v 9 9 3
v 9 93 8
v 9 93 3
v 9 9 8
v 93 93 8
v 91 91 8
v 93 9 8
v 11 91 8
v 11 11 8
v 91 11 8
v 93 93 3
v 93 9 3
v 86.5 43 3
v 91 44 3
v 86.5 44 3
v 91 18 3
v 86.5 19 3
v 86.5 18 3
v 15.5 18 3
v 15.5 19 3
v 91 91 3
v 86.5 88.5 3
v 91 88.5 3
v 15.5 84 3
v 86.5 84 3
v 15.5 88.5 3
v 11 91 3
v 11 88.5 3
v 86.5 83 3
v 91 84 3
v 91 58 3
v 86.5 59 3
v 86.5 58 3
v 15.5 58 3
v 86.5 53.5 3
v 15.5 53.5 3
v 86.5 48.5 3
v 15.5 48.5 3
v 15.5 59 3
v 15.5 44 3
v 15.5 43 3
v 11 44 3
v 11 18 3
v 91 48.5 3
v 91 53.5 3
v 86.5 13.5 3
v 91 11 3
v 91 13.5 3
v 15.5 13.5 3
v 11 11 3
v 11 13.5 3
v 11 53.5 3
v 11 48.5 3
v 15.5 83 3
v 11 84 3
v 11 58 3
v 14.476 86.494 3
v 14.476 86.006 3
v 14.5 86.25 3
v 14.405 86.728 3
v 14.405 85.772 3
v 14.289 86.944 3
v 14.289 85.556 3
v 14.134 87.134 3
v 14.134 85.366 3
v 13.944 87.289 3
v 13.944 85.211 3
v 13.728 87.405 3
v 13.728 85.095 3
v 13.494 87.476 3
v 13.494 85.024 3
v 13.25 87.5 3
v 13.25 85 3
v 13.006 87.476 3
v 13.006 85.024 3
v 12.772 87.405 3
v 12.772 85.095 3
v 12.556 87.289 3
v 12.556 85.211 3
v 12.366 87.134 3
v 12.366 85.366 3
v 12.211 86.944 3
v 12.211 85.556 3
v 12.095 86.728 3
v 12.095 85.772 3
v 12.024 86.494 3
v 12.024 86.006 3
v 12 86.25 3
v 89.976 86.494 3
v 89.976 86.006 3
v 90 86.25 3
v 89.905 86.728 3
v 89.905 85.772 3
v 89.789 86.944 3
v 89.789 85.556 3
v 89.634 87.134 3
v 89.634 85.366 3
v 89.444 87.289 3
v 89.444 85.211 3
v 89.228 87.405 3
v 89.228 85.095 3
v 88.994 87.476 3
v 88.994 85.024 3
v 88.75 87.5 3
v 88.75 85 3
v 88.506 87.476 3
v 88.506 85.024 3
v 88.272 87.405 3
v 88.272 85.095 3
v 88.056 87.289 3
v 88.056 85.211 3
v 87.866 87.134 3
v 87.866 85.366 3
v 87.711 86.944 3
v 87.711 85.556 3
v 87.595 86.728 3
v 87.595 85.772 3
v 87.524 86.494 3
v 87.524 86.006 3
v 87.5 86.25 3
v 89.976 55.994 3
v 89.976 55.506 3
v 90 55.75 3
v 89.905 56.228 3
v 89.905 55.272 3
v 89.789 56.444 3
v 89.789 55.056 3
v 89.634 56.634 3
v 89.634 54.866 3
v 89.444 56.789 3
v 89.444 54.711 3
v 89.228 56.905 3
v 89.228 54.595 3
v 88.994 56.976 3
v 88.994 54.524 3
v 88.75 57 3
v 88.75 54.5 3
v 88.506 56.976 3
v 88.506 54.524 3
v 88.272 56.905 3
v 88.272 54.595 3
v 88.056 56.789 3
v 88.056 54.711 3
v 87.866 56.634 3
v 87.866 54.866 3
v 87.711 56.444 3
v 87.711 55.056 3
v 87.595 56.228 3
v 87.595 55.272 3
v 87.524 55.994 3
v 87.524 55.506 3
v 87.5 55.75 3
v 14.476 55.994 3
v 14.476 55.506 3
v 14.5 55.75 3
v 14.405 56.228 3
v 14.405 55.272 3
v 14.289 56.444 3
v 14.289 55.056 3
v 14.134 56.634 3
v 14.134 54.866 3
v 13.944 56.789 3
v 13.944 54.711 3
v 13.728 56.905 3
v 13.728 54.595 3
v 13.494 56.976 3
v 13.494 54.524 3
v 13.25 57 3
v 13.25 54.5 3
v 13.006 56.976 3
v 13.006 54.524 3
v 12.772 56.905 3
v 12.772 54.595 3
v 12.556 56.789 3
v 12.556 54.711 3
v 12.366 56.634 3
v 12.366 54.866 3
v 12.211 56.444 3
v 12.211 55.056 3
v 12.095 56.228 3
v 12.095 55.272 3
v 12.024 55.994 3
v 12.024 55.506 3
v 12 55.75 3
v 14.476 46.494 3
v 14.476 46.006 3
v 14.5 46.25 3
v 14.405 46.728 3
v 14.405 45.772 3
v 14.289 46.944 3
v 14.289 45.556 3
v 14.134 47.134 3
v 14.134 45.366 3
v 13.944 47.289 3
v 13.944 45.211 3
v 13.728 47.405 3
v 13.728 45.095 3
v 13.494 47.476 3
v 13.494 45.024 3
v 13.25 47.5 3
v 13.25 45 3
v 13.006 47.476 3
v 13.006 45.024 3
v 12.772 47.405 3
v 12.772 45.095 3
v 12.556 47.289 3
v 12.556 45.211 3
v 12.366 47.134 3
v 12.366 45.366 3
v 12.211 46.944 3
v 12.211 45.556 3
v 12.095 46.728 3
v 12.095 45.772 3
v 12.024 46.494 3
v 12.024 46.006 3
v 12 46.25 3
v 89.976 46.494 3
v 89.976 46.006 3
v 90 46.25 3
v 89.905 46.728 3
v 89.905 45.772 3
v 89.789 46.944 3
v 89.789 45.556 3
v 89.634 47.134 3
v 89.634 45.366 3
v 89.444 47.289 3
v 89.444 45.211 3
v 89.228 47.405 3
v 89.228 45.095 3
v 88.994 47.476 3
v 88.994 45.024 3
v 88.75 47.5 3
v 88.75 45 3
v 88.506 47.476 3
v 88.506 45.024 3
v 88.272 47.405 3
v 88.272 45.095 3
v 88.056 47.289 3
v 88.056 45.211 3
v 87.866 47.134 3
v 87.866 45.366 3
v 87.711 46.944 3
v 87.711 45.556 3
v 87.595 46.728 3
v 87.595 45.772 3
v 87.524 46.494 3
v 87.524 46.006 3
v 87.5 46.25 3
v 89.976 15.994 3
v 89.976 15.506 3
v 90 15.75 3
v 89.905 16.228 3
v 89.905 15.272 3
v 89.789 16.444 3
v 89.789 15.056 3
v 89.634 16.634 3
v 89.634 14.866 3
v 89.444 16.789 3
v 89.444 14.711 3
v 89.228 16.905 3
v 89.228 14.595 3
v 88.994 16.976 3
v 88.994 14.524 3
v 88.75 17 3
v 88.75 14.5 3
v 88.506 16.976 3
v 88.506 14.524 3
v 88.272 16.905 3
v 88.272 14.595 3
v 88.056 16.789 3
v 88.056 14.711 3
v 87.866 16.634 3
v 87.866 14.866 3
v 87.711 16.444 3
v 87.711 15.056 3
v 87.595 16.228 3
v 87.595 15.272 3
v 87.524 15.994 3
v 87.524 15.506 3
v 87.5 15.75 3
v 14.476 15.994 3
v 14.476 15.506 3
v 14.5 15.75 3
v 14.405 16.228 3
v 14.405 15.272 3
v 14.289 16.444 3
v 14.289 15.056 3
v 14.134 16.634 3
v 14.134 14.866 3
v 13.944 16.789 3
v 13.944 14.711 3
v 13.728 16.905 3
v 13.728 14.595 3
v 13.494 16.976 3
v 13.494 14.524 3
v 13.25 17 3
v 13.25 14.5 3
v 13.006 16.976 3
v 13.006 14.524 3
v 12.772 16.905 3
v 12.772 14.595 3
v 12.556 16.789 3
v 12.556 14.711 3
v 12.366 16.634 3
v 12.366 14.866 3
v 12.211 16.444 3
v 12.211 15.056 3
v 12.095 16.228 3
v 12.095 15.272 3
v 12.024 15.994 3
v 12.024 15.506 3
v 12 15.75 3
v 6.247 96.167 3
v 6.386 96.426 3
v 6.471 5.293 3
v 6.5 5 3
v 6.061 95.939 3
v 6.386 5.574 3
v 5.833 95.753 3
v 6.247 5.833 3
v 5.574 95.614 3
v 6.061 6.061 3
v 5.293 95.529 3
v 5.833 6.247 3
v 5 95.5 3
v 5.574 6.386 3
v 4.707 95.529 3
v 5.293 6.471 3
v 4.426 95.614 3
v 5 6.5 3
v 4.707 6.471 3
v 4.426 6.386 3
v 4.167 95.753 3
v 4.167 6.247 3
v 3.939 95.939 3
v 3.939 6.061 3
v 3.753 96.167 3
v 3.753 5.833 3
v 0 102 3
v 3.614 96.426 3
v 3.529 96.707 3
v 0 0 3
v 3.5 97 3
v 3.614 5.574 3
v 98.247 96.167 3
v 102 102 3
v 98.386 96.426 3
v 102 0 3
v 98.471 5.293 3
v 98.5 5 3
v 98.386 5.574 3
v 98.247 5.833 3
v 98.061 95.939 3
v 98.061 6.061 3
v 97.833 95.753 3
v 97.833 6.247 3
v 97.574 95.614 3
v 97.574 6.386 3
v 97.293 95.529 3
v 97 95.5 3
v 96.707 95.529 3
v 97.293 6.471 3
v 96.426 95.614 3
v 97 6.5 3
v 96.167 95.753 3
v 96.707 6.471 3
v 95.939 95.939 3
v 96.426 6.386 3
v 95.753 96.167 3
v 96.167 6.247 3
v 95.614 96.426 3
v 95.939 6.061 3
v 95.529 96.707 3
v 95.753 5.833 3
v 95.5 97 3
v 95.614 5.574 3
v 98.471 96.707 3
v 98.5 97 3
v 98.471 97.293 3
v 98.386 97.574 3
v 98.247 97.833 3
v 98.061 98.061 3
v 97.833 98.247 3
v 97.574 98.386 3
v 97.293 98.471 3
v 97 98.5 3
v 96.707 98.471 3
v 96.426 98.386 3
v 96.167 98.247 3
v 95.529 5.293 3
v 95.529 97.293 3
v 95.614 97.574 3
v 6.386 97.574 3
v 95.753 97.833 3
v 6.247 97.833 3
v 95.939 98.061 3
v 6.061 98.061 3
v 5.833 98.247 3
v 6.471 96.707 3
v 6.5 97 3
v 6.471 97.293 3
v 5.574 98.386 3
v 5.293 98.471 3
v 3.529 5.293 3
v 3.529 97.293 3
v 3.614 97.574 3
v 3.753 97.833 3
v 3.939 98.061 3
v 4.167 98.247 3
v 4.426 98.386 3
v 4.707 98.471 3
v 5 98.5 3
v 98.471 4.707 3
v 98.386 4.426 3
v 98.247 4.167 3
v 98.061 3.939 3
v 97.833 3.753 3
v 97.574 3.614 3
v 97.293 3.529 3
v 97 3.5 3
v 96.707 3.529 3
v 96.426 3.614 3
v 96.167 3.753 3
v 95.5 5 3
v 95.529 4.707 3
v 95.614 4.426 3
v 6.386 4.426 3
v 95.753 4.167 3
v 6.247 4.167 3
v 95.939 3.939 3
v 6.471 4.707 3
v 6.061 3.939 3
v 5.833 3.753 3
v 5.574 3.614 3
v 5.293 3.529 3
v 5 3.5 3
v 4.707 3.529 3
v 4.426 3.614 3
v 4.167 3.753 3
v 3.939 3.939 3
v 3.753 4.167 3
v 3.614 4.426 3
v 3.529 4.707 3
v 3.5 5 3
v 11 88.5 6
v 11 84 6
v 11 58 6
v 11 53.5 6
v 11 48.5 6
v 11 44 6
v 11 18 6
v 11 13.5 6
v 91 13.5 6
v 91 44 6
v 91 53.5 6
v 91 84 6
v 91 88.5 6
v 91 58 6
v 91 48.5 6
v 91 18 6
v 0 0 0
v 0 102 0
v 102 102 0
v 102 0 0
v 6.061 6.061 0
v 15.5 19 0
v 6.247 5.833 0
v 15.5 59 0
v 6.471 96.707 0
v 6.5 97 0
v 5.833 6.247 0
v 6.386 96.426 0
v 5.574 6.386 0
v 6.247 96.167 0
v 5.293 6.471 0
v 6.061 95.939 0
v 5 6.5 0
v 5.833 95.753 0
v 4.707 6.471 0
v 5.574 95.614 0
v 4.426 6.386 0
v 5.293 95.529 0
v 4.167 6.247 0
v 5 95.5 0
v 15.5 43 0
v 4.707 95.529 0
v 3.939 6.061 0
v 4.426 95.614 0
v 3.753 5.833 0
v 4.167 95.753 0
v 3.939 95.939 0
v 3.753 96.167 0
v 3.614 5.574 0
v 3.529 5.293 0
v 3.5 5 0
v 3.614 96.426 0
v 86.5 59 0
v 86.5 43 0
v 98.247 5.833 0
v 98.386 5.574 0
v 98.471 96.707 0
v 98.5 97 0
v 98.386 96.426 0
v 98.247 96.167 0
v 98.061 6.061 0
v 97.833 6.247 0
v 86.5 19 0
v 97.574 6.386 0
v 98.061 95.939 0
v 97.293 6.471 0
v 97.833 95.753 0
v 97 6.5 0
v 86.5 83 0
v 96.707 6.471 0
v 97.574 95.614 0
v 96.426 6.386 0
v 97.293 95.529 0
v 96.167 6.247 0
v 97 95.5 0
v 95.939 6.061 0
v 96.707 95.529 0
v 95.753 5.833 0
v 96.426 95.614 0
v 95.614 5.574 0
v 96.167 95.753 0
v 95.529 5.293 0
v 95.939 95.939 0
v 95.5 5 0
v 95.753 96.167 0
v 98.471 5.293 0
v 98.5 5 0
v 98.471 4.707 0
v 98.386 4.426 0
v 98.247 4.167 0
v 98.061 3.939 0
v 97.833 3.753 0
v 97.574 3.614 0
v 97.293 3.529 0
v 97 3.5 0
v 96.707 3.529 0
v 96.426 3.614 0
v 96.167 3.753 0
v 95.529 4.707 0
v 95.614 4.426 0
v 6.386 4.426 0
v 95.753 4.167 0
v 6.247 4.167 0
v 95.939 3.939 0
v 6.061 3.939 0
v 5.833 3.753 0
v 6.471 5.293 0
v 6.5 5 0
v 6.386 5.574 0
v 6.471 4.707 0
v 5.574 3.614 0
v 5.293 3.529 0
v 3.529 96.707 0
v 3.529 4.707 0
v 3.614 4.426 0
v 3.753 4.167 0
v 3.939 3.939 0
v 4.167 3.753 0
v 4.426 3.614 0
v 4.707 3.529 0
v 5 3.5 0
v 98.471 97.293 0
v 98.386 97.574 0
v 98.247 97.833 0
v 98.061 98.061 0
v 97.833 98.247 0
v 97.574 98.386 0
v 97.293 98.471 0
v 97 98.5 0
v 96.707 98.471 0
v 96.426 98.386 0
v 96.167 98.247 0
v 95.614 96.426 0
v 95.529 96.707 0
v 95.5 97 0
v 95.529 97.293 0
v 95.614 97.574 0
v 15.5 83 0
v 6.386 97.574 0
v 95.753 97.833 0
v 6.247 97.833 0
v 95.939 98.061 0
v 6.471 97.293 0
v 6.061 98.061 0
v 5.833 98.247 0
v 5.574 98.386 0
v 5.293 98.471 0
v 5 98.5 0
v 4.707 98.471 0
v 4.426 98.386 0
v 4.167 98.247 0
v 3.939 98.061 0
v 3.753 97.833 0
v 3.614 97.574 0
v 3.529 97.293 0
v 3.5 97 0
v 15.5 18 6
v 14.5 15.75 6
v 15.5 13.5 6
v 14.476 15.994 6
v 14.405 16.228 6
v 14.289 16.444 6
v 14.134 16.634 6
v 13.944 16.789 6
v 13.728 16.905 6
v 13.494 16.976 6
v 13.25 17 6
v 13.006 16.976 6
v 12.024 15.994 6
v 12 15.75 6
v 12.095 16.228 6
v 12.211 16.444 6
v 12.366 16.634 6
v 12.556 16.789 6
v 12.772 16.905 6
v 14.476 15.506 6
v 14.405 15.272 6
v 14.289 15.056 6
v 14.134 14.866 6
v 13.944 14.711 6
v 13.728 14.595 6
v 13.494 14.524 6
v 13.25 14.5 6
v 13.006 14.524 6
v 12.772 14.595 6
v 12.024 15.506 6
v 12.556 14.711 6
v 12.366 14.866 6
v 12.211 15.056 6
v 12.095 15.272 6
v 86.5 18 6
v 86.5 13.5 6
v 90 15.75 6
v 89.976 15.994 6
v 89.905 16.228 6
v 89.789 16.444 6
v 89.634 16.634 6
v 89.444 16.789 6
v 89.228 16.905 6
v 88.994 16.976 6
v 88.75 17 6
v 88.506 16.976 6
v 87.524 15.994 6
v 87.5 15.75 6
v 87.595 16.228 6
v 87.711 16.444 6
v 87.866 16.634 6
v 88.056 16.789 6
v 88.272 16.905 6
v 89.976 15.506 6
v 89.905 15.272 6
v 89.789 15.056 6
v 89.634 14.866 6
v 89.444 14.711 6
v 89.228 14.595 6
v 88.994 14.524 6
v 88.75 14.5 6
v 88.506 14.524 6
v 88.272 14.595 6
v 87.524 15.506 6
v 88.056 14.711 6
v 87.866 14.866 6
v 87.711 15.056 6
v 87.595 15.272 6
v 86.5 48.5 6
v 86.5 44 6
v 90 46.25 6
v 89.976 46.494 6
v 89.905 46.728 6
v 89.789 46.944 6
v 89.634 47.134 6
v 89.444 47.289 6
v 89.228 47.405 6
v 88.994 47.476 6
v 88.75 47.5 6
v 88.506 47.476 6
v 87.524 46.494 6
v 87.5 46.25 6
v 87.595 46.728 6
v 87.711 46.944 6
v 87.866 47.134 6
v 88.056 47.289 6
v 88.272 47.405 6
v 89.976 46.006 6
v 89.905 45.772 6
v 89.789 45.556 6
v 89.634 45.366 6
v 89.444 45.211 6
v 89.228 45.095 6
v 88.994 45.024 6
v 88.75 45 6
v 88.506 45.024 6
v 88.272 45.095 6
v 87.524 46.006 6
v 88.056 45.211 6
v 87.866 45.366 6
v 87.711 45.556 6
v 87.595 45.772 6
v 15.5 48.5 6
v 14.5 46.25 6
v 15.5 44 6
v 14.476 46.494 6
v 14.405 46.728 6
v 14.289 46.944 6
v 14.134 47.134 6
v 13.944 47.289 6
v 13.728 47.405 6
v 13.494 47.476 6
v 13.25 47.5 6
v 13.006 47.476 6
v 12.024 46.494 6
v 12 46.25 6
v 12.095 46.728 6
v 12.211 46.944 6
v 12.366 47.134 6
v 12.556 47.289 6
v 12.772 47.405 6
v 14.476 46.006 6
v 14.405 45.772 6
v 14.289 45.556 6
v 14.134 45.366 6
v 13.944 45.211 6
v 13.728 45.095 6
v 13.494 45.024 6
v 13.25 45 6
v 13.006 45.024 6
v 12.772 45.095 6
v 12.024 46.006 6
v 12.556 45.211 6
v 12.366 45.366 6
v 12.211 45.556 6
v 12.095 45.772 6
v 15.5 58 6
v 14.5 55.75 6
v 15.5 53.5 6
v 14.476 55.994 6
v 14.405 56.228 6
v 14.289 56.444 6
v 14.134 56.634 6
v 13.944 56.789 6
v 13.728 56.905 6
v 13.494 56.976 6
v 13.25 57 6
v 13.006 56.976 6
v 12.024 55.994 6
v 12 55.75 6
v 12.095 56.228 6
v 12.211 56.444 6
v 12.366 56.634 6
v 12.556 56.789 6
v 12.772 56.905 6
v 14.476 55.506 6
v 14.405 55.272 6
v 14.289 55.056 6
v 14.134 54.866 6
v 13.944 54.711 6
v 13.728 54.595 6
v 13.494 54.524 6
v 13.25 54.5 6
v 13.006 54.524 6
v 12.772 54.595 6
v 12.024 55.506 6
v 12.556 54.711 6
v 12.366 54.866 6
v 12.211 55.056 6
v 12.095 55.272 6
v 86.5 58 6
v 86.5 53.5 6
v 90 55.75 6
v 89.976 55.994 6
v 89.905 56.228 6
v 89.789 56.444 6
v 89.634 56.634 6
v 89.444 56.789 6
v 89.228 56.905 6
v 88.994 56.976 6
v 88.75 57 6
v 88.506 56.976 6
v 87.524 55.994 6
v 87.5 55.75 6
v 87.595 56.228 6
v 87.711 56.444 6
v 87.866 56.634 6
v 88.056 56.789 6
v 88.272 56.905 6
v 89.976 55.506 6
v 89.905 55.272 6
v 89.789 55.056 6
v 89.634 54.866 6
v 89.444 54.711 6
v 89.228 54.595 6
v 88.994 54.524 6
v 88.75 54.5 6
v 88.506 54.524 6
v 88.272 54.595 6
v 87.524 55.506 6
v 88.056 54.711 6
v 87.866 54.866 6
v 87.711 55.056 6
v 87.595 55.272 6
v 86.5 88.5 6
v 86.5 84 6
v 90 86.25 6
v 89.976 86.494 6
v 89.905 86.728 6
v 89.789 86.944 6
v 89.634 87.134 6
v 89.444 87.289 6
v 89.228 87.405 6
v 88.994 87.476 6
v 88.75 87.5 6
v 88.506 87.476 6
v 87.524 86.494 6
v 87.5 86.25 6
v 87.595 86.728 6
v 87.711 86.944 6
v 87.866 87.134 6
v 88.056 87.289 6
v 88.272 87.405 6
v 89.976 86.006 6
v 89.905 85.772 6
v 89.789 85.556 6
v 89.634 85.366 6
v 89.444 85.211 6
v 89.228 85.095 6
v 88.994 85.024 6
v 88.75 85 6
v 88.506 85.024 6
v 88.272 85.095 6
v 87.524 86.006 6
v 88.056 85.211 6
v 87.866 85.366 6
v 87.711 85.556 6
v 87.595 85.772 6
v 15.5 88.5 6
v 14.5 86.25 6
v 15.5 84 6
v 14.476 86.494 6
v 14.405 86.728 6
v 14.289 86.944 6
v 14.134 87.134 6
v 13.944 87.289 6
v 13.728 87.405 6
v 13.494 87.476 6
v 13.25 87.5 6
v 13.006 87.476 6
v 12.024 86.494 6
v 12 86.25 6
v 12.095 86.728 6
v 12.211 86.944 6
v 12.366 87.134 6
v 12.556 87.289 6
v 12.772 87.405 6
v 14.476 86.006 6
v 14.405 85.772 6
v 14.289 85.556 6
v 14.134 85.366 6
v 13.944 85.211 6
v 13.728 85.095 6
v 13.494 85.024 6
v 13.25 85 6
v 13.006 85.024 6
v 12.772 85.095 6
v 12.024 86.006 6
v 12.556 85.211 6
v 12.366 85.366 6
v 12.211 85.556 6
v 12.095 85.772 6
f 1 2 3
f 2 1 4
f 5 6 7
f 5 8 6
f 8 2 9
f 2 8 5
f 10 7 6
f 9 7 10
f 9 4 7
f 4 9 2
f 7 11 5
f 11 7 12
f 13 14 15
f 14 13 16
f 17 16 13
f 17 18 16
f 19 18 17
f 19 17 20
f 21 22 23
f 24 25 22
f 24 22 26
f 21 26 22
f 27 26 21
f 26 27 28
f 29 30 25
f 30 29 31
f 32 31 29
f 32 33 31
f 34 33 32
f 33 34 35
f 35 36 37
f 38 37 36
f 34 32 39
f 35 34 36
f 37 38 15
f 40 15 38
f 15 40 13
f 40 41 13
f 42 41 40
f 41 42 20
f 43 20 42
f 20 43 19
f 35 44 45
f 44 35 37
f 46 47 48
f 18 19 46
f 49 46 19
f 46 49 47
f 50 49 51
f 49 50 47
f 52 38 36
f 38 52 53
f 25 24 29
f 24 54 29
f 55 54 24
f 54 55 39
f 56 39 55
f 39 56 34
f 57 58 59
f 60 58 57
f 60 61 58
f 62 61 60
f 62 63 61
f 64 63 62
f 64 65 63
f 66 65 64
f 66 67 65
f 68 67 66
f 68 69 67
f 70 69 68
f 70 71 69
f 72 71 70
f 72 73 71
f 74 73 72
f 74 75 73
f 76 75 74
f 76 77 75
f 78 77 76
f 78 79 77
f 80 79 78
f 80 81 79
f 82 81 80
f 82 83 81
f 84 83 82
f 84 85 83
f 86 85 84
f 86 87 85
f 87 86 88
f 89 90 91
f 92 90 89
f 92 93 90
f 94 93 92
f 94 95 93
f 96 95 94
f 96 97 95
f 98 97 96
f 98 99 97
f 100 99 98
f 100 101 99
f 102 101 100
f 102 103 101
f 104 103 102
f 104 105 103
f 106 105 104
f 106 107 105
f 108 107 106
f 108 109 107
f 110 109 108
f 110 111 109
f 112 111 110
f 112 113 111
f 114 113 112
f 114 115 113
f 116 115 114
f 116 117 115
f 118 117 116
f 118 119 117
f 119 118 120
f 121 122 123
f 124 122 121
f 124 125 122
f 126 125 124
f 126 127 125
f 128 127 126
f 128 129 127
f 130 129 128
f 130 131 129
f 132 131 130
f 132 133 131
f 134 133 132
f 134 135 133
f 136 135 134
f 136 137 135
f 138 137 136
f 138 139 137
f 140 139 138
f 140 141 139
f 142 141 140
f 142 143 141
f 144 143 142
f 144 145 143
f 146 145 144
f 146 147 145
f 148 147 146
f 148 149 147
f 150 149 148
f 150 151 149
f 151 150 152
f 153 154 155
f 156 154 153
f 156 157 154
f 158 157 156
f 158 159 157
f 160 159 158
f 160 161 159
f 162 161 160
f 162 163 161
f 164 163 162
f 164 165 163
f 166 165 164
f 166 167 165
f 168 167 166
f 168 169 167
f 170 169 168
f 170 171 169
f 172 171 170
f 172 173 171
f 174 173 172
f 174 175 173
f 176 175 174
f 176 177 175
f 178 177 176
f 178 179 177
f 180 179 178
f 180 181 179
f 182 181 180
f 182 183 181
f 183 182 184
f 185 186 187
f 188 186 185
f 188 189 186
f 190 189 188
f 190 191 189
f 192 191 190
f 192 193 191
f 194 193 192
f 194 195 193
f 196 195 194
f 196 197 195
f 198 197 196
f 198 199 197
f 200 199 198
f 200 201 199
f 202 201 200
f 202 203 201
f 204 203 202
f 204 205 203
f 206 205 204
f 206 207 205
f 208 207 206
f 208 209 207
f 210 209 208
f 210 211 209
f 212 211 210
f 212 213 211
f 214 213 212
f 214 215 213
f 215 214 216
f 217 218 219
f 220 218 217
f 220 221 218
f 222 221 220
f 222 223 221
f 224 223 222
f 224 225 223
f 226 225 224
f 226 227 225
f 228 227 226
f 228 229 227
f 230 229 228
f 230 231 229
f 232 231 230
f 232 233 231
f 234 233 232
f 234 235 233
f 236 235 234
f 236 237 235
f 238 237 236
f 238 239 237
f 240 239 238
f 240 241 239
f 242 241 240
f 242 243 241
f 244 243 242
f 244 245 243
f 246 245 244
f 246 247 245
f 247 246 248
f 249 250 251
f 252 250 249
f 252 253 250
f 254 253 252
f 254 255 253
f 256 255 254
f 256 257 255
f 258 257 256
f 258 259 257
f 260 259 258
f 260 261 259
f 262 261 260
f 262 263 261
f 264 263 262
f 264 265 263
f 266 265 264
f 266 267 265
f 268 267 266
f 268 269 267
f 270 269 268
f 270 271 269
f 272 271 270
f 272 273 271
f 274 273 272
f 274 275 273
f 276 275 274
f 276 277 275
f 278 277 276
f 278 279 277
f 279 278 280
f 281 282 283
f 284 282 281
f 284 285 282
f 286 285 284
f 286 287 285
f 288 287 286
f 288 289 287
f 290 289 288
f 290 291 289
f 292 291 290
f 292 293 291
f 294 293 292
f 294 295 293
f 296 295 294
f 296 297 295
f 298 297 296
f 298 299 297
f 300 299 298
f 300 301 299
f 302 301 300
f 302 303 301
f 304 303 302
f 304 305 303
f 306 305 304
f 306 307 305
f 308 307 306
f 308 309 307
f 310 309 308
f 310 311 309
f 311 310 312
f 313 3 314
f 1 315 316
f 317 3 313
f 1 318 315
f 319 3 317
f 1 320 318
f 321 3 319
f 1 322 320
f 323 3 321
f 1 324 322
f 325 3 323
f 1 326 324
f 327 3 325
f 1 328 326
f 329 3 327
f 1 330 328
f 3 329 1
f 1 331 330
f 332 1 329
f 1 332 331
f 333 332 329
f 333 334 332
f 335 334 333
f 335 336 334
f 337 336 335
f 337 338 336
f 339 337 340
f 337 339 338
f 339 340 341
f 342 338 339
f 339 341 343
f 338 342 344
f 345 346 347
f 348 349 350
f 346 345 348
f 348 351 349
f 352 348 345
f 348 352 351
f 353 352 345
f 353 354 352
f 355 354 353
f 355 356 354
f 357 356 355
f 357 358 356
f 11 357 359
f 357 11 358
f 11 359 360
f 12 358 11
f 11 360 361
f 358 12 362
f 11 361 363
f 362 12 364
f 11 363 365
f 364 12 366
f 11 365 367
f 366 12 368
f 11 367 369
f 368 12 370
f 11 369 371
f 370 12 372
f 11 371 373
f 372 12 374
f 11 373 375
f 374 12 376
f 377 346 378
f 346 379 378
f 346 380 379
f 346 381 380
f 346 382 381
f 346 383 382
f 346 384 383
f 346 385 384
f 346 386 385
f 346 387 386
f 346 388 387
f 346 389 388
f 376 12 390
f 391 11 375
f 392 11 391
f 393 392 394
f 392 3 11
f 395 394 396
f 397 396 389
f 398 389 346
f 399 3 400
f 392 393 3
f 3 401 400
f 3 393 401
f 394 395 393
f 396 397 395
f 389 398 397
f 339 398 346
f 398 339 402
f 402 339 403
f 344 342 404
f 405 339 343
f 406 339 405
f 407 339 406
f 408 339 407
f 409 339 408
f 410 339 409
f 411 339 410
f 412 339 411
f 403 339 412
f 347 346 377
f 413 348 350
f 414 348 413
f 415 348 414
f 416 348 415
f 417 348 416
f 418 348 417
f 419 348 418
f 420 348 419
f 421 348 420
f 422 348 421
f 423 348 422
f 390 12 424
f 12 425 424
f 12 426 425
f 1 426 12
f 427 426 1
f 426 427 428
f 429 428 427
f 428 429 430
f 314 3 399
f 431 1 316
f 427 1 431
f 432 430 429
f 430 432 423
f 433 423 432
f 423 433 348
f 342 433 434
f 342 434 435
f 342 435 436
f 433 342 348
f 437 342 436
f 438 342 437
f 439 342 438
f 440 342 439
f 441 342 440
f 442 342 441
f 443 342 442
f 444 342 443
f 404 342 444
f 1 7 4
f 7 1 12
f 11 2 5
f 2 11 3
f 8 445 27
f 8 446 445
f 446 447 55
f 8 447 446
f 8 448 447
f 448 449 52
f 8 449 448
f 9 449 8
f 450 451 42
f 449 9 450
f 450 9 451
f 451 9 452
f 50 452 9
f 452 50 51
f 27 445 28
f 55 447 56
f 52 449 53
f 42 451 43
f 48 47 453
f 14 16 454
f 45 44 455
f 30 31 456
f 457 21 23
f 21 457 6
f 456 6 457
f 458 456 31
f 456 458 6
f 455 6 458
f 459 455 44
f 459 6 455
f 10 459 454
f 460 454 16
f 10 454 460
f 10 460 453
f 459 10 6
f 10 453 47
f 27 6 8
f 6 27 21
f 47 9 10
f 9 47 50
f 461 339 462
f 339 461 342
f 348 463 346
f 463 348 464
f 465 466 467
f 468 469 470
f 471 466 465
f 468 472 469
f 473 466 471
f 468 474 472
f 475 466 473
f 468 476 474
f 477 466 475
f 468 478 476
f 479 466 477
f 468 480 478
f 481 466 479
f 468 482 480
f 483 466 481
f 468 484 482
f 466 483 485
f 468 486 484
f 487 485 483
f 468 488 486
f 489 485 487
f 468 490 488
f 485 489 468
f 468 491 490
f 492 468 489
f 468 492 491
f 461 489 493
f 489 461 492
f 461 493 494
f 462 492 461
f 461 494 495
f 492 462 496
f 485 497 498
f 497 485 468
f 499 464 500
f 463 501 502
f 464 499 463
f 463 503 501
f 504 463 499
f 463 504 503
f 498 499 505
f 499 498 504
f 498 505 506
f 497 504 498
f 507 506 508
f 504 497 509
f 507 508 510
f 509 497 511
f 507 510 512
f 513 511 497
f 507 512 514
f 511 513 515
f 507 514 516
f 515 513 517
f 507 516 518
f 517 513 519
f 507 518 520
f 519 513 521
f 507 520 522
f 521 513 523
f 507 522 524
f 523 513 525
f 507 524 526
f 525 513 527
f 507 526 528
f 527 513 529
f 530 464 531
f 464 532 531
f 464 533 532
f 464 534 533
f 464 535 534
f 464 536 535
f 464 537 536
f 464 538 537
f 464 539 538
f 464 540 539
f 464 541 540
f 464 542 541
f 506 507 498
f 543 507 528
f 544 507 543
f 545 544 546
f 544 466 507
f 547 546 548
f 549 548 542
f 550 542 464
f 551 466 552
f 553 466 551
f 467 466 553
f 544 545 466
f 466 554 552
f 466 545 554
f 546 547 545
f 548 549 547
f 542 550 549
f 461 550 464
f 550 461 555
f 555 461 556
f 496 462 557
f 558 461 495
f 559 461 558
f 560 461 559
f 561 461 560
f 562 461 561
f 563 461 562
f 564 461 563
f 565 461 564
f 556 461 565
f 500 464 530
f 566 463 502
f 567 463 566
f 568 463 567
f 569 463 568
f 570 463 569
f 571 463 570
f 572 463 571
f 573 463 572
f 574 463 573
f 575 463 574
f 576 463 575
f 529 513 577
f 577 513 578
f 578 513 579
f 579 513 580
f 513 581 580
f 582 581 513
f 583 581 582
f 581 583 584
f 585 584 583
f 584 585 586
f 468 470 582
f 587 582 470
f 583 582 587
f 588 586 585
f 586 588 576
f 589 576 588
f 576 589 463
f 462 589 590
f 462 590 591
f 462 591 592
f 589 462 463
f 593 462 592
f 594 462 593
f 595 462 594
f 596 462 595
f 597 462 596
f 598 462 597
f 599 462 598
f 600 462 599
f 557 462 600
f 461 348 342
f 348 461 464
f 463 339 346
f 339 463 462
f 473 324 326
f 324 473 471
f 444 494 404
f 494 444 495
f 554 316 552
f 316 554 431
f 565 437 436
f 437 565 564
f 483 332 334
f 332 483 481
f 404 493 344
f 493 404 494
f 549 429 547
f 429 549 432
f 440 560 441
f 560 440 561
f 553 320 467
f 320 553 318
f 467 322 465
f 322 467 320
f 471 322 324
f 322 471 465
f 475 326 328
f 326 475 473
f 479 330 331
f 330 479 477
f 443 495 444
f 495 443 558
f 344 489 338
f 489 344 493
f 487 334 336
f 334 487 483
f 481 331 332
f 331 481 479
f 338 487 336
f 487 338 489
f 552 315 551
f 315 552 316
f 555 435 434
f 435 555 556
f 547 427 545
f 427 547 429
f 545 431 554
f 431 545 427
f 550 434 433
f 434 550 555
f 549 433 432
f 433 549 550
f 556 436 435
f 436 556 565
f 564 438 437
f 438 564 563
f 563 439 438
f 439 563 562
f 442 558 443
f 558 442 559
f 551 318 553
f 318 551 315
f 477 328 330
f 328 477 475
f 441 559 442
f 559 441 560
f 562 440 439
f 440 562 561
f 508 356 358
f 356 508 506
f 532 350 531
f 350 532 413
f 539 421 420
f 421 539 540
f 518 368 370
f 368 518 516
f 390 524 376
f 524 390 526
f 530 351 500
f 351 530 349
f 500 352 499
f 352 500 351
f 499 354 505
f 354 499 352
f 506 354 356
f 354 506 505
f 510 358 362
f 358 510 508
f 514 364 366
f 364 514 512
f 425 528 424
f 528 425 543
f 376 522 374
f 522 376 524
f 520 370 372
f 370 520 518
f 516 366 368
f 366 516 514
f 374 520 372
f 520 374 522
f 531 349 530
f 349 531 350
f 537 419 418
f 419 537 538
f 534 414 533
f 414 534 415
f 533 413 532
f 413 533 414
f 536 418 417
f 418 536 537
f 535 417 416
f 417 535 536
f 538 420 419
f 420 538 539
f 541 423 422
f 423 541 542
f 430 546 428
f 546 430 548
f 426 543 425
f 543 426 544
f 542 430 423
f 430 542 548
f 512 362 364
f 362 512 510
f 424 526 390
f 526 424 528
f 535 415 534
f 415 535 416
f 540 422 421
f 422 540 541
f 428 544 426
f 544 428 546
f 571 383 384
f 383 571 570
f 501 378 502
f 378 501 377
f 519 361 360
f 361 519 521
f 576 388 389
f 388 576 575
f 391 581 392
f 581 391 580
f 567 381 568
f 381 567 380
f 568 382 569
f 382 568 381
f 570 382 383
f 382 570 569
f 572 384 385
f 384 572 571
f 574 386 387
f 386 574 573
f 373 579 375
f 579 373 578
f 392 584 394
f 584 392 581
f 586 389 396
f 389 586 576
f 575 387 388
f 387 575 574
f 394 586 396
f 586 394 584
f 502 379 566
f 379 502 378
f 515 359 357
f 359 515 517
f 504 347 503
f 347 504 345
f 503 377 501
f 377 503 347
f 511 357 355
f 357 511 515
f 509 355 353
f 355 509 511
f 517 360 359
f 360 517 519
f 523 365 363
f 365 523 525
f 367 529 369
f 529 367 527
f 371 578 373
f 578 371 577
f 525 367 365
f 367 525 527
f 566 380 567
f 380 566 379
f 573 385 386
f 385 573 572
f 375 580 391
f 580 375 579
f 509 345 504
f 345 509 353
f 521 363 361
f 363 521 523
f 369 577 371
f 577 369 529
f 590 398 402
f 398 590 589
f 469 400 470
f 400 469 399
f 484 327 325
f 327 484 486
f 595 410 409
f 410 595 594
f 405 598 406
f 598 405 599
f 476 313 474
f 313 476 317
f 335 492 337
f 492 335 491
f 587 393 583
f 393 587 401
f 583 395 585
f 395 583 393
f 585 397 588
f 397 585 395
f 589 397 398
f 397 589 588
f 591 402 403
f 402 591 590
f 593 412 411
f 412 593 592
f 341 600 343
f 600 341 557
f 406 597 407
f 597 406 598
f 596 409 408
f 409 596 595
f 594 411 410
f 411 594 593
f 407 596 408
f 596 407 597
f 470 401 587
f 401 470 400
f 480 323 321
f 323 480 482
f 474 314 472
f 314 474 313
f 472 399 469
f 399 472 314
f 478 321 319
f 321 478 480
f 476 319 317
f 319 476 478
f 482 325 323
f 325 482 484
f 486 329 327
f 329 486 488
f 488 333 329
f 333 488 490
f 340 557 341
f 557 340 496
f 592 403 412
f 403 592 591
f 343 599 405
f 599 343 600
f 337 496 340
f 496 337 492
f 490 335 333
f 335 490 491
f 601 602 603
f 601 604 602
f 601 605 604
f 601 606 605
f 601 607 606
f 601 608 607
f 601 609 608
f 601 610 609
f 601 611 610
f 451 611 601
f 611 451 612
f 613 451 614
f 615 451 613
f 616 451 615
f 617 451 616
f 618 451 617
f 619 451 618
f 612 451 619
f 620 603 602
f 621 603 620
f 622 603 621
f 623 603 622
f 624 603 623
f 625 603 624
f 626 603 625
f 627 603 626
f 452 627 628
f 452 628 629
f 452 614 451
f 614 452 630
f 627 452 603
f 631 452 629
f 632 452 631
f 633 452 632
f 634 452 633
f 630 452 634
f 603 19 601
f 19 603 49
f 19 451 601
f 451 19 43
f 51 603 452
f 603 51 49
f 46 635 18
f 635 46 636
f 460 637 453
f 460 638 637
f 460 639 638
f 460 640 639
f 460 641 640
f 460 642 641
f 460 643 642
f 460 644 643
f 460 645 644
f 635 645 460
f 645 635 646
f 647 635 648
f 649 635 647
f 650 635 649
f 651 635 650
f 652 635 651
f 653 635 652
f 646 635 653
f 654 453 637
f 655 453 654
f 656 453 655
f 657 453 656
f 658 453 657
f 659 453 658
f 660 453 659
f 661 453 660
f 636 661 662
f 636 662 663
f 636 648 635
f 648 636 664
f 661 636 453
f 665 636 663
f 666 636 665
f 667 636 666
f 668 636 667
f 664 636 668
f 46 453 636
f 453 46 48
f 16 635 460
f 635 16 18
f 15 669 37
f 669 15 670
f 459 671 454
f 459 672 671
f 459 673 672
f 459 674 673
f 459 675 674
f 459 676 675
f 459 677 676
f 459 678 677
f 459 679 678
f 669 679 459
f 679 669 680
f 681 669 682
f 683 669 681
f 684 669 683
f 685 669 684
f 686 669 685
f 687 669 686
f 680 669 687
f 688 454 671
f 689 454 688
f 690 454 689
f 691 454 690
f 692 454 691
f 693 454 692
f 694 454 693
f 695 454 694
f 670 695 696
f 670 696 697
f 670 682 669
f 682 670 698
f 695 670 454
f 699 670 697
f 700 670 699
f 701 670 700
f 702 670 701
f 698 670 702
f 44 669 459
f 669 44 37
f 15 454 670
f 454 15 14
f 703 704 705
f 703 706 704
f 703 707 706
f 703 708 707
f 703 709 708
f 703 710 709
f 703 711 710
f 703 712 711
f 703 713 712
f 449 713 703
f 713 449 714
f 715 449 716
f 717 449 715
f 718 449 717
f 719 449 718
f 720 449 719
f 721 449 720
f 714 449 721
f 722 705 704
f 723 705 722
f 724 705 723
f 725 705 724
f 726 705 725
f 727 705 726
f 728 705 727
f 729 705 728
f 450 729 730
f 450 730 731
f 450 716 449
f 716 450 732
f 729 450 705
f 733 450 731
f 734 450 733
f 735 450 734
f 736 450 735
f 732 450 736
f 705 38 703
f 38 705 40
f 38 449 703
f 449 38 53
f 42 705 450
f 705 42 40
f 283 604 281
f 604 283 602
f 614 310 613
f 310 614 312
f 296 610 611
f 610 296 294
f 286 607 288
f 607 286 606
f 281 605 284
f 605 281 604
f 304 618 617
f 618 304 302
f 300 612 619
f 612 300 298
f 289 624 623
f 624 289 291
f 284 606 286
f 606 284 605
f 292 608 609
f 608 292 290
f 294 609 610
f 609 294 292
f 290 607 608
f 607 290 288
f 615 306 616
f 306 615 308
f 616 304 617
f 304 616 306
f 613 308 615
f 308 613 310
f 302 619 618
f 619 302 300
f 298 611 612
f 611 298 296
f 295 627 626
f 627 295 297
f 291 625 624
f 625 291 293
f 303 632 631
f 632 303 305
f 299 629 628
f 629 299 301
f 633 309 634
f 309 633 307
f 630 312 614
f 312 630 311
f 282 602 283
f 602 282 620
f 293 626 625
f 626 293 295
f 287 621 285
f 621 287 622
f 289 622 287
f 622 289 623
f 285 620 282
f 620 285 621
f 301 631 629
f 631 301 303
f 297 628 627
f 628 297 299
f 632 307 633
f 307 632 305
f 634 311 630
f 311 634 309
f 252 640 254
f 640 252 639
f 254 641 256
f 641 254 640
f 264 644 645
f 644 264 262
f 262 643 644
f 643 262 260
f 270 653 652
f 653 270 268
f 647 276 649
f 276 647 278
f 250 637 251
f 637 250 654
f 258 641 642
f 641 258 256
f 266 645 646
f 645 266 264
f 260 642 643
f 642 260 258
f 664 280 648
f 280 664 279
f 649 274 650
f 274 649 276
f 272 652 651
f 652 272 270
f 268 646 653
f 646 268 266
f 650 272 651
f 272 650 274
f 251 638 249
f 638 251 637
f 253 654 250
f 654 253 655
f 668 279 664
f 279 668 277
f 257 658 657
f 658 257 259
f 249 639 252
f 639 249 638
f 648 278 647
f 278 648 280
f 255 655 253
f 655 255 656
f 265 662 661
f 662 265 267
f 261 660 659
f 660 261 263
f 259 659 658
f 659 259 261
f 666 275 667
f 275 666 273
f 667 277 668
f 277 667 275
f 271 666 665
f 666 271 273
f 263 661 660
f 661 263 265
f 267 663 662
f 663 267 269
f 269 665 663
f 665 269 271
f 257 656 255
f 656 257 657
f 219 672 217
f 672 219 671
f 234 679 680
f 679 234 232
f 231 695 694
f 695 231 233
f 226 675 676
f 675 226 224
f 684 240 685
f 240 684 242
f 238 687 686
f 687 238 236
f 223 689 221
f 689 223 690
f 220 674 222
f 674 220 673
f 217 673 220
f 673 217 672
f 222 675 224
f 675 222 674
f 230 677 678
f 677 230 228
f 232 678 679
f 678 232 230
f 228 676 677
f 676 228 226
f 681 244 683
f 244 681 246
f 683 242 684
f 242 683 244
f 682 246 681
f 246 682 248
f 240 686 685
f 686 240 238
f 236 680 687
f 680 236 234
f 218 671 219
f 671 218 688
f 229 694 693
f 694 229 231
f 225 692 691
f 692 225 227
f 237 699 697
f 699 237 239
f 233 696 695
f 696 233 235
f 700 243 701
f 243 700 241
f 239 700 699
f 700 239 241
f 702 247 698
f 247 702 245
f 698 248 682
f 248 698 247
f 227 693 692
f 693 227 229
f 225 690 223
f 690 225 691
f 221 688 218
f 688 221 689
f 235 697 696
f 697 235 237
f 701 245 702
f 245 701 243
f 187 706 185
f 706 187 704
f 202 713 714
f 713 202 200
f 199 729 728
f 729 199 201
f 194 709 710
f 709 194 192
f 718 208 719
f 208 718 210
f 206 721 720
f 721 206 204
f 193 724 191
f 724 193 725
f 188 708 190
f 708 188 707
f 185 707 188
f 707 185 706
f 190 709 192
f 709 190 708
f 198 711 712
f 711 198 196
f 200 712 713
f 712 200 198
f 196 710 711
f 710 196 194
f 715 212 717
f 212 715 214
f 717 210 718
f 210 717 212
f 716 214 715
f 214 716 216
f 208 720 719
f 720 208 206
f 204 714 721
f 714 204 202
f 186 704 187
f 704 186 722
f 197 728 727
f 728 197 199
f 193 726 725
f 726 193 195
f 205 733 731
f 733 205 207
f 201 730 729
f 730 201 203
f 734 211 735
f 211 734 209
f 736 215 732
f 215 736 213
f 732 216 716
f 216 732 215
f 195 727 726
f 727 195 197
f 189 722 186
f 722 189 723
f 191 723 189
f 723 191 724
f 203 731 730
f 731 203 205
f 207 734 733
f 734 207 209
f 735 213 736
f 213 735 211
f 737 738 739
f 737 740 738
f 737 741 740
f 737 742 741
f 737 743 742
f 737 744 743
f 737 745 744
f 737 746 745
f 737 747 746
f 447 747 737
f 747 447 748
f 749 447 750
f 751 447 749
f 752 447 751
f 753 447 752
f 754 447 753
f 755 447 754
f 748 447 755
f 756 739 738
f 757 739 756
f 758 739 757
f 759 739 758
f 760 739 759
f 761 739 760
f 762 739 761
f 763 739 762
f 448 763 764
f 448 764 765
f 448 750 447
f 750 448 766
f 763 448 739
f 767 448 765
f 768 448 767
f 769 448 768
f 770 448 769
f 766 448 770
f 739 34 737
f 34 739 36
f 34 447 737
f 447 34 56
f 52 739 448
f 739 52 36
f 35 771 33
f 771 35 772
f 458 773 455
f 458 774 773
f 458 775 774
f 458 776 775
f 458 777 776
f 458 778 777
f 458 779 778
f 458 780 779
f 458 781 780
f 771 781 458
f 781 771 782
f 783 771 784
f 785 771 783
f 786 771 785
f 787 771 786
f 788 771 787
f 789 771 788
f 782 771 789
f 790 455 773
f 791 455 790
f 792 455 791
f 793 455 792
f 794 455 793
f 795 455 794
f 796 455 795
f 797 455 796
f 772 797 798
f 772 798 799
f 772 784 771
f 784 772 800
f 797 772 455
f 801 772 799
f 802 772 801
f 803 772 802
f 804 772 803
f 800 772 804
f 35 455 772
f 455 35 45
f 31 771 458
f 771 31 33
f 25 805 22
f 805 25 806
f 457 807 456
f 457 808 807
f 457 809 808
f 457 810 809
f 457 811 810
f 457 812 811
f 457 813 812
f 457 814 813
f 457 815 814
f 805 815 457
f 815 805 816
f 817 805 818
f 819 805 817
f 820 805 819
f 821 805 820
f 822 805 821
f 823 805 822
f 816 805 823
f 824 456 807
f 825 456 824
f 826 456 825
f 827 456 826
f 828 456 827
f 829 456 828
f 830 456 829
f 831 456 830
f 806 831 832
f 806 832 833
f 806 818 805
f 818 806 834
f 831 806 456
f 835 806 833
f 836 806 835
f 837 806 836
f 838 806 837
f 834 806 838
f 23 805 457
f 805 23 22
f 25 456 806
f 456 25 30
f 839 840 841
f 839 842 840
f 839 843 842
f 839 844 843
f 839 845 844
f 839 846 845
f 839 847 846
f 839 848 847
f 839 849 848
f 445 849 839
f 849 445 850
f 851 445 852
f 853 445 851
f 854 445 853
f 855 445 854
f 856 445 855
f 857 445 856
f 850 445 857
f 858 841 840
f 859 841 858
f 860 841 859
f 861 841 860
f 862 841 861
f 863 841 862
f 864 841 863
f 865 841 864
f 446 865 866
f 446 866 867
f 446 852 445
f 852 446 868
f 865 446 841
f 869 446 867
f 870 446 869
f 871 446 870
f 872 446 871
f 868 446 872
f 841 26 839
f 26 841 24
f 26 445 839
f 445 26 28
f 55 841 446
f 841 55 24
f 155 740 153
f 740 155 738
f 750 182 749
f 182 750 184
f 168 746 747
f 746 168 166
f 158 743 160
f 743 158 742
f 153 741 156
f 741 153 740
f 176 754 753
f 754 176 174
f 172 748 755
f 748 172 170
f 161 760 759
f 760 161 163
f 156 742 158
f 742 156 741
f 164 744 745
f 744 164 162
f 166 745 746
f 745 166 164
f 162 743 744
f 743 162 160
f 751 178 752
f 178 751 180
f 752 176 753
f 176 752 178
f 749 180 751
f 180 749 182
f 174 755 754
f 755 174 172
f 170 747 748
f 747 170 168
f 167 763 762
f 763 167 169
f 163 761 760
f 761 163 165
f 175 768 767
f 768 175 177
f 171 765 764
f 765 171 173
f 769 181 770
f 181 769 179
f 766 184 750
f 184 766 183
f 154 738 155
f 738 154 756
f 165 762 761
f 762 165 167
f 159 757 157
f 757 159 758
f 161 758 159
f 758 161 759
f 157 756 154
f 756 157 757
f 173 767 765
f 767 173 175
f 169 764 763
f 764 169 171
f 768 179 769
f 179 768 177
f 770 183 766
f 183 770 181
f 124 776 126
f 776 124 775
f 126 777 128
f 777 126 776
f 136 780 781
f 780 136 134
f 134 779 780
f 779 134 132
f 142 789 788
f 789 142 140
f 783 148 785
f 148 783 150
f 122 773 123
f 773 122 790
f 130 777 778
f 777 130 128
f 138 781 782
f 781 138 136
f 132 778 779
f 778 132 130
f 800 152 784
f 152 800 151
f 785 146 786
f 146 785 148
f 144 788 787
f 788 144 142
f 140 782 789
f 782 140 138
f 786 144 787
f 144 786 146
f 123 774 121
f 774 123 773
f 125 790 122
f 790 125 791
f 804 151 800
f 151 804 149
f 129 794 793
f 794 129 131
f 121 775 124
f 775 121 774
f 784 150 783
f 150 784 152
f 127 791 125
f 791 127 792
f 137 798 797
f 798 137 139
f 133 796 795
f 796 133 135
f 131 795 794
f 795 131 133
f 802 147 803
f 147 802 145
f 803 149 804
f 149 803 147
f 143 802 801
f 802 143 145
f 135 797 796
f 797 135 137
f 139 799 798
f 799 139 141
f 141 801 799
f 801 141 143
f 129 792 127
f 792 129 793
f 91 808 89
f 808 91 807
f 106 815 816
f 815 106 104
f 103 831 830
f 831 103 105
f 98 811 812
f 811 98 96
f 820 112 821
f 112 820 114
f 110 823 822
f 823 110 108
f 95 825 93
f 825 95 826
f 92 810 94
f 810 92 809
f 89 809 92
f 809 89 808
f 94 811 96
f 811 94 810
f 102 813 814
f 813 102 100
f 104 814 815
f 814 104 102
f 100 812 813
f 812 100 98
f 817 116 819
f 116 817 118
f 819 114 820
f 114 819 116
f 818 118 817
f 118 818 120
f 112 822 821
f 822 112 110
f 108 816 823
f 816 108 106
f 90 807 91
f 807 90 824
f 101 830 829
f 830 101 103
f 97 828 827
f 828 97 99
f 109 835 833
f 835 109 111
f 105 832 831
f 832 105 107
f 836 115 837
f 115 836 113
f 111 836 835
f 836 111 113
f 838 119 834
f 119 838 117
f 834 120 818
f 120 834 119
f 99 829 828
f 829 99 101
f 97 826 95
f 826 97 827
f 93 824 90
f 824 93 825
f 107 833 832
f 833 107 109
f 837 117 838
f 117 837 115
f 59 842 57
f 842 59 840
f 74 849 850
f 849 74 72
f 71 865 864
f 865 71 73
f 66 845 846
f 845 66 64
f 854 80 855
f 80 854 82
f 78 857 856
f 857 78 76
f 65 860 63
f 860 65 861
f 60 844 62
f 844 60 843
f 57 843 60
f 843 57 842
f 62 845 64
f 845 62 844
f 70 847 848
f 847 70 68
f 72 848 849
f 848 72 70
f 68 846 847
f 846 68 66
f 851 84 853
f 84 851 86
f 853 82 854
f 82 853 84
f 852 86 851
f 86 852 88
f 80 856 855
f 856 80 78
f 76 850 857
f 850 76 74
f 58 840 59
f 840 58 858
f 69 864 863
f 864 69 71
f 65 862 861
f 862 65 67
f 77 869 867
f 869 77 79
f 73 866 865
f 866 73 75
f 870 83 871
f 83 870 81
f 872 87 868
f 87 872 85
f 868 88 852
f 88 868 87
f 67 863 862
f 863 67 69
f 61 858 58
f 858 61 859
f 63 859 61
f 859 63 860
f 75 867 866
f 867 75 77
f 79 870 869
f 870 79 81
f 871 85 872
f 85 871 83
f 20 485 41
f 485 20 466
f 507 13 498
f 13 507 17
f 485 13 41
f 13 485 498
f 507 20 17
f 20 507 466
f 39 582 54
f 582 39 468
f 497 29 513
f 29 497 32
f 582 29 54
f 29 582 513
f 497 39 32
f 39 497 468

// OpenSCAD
fn = 32;
inzetW = 84;
inzetH = 84;
inzetDikte = 5;
frontW = 102;
frontH = 102;
frontDikte = 3;

displayW = 71;
displayH = 24;
displayPcbW = 80;
displayPcbH = 35;

module front() {
    schroefD = 3;
    dx = (frontW - inzetW) / 2;
    dy = (frontH - inzetH) / 2;
    dz = (frontDikte);
    bd = 2;
    gatX = 5;
    gatY = 5;
    difference() {
        union() {
            cube([frontW, frontH, frontDikte]);
            translate([dx, dy, dz])
                difference() {
                    cube([inzetW, inzetH, inzetDikte]);
                    translate([bd,bd,0])
                        cube([inzetW-bd*2, inzetH-bd*2, inzetDikte]);
                }
        }
        union() {
            translate([gatX,gatY,0])
                cylinder(d=schroefD, h=dz, $fn=fn);
            translate([frontW-(gatX),gatY,0])
                cylinder(d=schroefD, h=dz, $fn=fn);
            translate([frontW-(gatX),(frontH-(gatY)),0])
                cylinder(d=schroefD, h=dz, $fn=fn);
            translate([gatX,(frontH-(gatY)),0])
                cylinder(d=schroefD, h=dz, $fn=fn);
        }
    }
}

module displayGat() {
    cube([displayW, displayH, frontDikte]);
}

module displayMount() {
    schroefD = 2.5;
    x = schroefD + 2;
    y = schroefD + 2;
    z = 3;
    difference() {
        union() {
            translate([0,0,0])
                cube([x, y, z]);
            translate([displayPcbW-x,0,0])
                cube([x, y, z]);
            translate([displayPcbW-x,displayPcbH-y,0])
                cube([x, y, z]);
            translate([0,displayPcbH-y,0])
                cube([x, y, z]);
        }
        translate([x/2,y/2,0])
        union() {
            translate([0,0,0])
                cylinder(d=schroefD, h=z, $fn=fn);
            translate([displayPcbW-x,0,0])
                cylinder(d=schroefD, h=z, $fn=fn);
            translate([displayPcbW-x,displayPcbH-y,0])
                cylinder(d=schroefD, h=z, $fn=fn);
            translate([0,displayPcbH-y,0])
                cylinder(d=schroefD, h=z, $fn=fn);
        }
    }
}

module all() {
    displayDist = 5;
    displayGap = (frontH - (displayDist + (displayPcbH * 2))) / 2;
    displayHD = (displayPcbH - displayH) / 2;
    difference() {
        union() {
            front();
            translate([(frontW - displayPcbW) / 2, (displayGap), frontDikte])
                displayMount();
            translate([(frontW - displayPcbW) / 2, (frontH - displayPcbH) - (displayGap), frontDikte])
                displayMount();
        }
        translate([(frontW - displayW) / 2, (displayGap + displayHD), 0])
            displayGat();
        translate([(frontW - displayW) / 2, (frontH - displayH) - (displayGap + displayHD), 0])
            displayGat();
    }
}

all();
